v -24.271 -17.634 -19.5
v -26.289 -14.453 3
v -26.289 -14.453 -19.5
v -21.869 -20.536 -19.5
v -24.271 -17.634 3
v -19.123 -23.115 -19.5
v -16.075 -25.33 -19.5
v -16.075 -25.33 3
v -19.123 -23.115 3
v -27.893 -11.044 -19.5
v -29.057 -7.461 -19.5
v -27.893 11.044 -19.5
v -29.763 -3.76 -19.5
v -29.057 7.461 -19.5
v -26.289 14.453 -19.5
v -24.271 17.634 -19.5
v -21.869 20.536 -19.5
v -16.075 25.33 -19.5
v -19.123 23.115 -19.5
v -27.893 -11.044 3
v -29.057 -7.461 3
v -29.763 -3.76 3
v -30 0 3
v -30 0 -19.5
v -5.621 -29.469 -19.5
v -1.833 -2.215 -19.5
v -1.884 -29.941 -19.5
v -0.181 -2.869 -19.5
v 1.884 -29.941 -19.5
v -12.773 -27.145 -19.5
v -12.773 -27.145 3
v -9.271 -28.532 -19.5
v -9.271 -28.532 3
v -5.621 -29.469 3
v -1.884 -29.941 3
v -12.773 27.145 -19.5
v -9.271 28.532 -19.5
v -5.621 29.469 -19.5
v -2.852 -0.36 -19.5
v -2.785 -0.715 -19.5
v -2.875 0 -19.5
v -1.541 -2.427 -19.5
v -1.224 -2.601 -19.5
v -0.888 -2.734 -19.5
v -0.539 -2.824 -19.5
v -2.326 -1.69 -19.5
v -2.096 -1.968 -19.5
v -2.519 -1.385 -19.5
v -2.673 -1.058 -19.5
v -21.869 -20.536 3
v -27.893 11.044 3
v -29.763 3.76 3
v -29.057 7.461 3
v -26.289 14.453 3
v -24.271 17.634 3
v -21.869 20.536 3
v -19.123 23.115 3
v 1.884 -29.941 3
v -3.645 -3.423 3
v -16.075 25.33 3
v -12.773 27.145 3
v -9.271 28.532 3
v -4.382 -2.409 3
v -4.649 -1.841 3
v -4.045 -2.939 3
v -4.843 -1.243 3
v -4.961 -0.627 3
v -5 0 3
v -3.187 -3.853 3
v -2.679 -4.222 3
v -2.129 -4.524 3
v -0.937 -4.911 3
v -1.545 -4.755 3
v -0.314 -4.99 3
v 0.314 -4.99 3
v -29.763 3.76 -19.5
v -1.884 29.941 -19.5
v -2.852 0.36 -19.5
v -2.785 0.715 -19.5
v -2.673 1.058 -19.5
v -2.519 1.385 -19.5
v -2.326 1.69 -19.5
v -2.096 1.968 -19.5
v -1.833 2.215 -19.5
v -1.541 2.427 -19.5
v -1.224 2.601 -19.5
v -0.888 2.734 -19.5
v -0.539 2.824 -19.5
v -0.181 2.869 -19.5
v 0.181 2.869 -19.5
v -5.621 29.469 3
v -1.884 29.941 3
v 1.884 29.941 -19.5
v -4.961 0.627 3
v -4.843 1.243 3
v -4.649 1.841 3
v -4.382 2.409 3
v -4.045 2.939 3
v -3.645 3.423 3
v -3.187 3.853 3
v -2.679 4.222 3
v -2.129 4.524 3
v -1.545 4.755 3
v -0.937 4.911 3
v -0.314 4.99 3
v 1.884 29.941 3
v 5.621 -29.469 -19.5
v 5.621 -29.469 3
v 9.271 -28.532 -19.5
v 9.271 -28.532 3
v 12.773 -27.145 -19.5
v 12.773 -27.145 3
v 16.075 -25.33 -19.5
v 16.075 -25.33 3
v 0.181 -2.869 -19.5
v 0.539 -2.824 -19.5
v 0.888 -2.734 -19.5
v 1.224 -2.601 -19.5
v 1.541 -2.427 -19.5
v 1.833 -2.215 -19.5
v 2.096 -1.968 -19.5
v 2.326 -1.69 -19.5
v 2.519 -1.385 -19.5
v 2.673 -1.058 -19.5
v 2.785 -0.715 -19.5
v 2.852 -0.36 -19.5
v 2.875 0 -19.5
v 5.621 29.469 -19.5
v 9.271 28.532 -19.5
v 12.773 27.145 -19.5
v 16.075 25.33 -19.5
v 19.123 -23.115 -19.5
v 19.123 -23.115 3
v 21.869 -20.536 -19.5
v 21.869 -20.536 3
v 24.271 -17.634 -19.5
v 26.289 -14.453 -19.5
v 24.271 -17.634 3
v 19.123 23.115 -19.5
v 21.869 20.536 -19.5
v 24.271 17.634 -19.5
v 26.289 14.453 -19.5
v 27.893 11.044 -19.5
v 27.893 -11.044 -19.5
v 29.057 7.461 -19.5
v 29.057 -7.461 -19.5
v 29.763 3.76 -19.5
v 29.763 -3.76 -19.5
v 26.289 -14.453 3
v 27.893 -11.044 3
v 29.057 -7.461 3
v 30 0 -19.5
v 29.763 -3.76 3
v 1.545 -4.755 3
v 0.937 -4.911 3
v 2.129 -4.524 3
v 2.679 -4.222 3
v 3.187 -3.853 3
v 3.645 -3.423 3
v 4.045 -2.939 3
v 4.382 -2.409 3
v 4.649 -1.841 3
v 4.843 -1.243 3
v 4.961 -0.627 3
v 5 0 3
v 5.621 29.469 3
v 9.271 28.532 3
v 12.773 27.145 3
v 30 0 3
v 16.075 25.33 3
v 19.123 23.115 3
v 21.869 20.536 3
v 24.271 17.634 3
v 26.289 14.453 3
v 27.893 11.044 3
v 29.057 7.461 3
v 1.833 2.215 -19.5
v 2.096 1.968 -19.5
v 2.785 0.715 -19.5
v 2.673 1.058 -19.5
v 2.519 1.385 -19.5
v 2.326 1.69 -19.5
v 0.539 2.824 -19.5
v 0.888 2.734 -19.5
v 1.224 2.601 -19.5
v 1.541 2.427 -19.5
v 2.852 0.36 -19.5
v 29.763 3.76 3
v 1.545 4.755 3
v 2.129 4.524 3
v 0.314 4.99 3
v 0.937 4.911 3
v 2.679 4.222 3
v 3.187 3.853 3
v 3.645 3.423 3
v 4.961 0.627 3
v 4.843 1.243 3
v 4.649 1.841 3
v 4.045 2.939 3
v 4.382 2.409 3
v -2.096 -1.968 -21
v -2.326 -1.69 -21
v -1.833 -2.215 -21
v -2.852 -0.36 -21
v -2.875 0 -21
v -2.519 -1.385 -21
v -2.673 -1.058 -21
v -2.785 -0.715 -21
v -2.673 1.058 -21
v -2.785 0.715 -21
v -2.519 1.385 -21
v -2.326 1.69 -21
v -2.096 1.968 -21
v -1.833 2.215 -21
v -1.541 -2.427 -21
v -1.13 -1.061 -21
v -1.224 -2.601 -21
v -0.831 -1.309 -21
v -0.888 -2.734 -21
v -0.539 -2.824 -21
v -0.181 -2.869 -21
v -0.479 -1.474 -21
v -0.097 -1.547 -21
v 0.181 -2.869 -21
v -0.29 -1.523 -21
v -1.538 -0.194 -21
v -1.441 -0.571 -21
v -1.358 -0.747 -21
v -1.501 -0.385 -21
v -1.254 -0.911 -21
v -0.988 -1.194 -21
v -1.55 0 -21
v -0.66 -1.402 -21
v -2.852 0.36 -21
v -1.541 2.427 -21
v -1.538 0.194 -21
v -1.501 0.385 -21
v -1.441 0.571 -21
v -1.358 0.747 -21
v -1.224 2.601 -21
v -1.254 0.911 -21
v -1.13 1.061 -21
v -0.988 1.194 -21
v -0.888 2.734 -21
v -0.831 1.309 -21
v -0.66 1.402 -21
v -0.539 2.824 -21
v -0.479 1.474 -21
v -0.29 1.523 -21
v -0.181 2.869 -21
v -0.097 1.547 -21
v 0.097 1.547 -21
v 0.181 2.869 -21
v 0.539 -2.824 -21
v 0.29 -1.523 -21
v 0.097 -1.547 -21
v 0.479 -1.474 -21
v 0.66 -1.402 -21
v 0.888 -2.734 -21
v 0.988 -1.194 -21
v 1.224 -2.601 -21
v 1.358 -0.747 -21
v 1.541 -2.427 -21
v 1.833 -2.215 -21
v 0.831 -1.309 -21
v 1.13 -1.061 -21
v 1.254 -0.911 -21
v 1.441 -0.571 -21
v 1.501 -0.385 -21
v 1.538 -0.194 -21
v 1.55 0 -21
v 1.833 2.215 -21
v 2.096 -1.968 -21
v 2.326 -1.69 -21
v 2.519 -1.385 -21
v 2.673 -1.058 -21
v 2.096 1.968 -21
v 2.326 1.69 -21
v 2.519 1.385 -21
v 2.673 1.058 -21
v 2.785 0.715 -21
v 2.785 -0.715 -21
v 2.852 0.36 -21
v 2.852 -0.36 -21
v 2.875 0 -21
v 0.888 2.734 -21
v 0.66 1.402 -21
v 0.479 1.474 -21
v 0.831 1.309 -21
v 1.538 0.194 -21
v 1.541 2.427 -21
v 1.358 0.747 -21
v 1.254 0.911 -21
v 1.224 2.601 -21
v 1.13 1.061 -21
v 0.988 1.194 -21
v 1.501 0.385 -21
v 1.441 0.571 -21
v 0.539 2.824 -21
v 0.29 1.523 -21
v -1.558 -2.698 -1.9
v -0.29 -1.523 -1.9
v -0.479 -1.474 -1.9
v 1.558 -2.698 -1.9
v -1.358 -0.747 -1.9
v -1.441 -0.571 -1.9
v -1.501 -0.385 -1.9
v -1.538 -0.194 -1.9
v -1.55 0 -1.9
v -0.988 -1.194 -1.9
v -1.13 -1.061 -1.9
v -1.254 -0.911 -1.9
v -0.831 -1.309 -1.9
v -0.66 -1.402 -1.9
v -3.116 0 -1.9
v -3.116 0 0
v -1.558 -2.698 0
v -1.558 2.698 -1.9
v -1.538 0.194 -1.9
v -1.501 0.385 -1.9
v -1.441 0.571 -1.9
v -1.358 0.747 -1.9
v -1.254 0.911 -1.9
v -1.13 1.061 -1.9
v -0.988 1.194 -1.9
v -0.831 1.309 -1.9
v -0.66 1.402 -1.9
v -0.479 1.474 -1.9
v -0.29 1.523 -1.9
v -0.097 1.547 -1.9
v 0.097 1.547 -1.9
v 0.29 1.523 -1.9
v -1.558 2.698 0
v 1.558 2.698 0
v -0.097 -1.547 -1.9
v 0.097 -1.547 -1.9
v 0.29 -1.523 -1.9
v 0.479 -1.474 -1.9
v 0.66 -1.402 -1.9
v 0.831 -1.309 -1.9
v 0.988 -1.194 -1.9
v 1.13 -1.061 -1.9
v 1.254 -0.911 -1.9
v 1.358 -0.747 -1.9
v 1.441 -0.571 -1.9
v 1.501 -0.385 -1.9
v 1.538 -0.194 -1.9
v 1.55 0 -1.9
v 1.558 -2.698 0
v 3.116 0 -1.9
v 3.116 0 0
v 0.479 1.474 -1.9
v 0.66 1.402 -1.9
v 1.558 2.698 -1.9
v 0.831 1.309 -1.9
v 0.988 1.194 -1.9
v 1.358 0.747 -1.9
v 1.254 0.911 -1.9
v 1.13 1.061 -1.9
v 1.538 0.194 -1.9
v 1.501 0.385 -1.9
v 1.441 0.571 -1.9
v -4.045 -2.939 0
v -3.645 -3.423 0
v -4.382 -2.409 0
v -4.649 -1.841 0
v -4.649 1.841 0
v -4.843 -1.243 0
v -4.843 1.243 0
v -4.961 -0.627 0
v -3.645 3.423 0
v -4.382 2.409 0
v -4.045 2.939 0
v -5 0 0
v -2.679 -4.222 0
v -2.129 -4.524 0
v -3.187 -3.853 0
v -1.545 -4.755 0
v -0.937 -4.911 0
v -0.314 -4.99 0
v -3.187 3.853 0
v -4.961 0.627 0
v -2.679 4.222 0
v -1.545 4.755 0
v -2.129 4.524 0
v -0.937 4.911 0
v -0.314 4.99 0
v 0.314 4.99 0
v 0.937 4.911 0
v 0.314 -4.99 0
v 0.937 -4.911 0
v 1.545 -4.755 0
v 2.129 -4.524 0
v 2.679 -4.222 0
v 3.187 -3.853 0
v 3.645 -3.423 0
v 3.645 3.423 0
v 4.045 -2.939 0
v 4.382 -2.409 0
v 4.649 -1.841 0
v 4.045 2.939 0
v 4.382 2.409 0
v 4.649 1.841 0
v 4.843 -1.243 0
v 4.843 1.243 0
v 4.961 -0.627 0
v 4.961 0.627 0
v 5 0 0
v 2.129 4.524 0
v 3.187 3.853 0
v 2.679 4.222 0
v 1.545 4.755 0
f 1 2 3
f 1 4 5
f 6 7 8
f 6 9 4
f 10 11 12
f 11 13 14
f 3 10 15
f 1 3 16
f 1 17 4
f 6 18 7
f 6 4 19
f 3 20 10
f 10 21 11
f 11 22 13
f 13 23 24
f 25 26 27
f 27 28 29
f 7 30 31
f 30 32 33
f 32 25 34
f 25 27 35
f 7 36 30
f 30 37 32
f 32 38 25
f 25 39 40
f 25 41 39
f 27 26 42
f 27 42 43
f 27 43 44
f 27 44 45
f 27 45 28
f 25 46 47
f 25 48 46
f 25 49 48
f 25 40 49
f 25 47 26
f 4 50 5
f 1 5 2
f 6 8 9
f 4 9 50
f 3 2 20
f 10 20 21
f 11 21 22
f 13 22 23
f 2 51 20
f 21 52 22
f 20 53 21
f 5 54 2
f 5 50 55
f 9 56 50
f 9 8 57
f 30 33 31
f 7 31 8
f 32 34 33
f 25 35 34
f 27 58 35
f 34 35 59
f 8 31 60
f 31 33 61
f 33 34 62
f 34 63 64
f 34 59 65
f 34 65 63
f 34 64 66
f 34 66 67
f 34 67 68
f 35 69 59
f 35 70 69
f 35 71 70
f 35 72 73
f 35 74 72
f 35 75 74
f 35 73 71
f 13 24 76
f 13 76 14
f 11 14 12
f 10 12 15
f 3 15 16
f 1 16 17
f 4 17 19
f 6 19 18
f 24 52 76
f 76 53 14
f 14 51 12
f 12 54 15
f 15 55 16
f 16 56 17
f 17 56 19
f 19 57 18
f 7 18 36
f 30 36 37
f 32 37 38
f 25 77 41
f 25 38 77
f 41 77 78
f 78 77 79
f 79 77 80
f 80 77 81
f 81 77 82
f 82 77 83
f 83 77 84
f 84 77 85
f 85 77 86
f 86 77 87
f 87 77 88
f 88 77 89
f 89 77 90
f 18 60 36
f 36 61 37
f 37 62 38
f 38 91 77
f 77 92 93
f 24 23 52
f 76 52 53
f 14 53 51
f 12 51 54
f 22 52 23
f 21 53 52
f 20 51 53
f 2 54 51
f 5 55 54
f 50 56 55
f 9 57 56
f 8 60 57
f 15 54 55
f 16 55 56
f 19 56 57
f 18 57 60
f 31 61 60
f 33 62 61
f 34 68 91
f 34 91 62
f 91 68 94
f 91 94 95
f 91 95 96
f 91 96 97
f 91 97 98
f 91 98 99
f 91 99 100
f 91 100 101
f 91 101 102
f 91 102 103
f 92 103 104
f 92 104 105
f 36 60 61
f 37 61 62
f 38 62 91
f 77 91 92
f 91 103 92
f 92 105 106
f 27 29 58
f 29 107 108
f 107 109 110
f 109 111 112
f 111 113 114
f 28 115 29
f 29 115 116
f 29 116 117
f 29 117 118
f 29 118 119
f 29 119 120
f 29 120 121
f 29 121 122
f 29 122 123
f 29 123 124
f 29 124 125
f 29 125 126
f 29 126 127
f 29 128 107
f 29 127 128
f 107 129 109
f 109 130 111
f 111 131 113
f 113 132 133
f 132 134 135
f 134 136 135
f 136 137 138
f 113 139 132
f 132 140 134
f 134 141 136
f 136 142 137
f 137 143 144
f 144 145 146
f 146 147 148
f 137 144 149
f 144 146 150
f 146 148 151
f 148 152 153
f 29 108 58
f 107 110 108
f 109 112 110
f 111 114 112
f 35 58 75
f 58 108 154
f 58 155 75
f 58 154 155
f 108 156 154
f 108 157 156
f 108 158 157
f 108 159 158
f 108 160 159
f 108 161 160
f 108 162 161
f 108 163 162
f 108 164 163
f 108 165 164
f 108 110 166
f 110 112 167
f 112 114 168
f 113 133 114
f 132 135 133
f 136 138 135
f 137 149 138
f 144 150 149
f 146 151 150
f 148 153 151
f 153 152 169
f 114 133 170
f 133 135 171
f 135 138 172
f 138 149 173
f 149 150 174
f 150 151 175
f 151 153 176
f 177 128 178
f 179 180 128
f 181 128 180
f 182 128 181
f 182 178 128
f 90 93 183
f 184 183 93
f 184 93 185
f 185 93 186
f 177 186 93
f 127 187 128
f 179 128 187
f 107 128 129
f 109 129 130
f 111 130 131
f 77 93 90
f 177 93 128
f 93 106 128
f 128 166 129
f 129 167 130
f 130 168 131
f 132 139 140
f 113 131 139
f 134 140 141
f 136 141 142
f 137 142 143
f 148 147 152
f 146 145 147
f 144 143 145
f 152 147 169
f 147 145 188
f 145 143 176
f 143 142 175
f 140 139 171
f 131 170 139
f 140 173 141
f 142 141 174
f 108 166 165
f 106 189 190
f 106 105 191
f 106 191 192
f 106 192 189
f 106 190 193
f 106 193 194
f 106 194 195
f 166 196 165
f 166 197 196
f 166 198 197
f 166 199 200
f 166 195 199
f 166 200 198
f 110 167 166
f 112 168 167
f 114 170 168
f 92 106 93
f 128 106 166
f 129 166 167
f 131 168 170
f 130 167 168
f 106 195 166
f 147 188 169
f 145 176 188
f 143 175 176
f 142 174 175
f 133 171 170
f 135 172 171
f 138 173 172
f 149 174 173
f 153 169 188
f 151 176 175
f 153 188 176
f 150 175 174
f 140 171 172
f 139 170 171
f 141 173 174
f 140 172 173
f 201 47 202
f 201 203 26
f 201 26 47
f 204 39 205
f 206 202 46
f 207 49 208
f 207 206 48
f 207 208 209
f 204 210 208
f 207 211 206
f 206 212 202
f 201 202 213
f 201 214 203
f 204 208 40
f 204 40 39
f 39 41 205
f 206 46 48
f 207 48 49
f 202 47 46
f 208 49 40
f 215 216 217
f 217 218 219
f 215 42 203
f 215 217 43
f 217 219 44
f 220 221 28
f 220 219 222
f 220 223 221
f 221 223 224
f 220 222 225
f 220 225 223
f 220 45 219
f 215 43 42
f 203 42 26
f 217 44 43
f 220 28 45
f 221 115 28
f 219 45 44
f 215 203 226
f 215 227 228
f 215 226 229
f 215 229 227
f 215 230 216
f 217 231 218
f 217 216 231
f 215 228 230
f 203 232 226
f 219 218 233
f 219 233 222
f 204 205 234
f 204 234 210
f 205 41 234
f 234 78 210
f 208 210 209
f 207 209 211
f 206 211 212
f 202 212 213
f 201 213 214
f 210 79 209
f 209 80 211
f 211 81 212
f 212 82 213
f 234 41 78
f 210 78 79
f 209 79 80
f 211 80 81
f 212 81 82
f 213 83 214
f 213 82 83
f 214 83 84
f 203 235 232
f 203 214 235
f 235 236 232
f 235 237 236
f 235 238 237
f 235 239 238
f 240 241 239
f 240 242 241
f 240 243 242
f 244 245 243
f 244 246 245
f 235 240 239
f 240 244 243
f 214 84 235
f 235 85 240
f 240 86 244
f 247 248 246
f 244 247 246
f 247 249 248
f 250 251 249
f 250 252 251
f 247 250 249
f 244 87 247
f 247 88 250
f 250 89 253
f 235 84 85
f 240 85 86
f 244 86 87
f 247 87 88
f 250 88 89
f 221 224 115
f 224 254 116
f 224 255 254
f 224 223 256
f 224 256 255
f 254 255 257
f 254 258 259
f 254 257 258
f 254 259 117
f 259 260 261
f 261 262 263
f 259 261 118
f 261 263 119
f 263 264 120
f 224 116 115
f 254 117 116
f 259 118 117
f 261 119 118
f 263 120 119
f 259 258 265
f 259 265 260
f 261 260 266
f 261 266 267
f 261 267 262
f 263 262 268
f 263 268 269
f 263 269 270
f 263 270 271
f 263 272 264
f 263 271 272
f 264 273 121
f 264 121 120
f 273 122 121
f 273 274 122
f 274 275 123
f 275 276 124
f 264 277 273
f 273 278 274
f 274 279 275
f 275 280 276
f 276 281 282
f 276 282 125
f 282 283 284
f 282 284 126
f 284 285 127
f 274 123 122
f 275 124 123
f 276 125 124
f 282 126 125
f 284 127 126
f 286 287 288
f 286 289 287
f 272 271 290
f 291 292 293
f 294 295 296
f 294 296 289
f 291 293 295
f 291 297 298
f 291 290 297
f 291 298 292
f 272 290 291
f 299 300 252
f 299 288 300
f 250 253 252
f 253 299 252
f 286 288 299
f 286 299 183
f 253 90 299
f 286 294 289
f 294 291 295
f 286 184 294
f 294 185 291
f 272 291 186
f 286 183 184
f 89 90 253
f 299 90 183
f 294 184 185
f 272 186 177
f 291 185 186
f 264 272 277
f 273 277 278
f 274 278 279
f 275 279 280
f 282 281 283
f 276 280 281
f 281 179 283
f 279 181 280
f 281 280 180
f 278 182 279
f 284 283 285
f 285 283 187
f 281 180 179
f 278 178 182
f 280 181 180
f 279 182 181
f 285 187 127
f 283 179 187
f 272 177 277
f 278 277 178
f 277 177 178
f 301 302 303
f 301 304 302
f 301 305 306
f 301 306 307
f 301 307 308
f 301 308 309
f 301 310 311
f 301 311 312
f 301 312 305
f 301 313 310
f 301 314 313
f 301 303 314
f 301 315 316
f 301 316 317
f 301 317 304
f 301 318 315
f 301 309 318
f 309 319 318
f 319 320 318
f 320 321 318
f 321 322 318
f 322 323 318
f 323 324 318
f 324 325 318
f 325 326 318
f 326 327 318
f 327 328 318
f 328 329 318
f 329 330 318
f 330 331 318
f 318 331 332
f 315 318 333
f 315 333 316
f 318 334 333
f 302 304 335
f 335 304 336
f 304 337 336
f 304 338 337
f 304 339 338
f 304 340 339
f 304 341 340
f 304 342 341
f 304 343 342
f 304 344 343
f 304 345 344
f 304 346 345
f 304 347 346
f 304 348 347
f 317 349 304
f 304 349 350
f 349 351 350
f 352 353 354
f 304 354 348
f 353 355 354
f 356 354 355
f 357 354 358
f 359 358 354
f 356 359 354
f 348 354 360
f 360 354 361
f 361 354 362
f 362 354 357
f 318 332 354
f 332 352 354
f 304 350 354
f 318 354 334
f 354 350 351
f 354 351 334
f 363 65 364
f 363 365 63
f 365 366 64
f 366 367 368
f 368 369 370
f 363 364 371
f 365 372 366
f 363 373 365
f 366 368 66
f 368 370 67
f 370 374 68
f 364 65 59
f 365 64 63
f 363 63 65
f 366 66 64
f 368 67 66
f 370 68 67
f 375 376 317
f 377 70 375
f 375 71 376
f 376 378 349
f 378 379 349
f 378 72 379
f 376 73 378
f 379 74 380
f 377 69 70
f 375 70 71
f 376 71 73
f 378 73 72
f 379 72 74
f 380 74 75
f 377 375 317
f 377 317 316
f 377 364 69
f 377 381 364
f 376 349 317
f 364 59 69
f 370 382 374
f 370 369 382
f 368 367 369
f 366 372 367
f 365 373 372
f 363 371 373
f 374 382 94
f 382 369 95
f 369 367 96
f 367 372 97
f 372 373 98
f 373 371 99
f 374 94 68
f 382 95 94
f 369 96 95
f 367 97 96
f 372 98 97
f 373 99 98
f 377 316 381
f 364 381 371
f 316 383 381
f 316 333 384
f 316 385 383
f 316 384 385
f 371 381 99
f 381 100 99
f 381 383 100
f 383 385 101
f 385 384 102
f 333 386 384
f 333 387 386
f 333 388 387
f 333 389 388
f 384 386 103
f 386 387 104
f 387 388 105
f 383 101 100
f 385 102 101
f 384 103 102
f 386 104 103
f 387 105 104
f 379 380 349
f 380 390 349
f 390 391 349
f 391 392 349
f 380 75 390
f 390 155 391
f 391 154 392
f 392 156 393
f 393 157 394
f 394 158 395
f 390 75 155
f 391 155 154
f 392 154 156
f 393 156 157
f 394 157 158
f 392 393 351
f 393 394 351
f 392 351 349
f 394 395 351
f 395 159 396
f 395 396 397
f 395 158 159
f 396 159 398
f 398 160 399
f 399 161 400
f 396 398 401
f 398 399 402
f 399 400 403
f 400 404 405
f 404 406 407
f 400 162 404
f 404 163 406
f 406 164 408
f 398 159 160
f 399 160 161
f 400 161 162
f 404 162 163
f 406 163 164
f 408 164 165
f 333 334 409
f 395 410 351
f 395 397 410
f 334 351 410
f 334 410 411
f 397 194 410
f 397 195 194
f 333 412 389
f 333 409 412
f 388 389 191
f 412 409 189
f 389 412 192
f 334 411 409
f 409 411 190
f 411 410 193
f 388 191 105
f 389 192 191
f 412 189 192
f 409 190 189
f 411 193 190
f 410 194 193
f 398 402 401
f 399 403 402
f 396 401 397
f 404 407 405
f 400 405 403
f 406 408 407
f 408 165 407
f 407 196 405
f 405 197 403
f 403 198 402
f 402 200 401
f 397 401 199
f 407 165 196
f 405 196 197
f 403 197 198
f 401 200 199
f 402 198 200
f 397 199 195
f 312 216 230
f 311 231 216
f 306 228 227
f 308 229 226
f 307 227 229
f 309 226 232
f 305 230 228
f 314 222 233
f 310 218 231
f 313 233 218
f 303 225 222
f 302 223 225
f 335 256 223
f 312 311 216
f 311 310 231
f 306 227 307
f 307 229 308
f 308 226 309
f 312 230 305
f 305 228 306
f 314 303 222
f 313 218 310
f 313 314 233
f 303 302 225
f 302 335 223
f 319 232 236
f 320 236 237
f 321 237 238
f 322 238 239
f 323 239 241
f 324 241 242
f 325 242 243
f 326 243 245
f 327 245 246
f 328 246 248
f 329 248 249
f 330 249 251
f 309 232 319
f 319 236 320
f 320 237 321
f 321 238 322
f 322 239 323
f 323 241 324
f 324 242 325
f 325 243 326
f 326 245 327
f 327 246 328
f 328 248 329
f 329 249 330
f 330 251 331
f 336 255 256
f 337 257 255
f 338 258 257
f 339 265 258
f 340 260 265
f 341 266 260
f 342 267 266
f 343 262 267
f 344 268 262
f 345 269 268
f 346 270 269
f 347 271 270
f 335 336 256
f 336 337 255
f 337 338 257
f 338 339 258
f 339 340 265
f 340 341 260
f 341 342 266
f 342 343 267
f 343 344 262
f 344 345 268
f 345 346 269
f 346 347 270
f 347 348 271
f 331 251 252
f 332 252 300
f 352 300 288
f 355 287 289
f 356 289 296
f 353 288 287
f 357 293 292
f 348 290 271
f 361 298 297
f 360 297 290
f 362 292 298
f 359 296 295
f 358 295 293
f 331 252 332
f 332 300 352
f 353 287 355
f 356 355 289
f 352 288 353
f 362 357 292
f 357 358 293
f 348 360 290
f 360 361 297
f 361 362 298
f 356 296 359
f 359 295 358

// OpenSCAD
$fn = 50;

difference() {
	union() {
		translate(v = [0, 0, -19.5]) {
			cylinder(h = 22.5, r = 30.0);
		}
		#translate(v = [0, 0, -21.0]) {
			cylinder(h = 21, r = 2.875);
		}
	}
	union() {
		translate(v = [0, 0, 0]) {
			rotate(a = [0, 0, 0]) {
				difference() {
					union() {
						translate(v = [0, 0, -1.9]) {
							linear_extrude(height = 1.9) {
								polygon(points = [[3.1158, 0.0], [1.5579000000000005, 2.698361953111554], [-1.5578999999999994, 2.6983619531115544], [-3.1158, 3.815754496783323e-16], [-1.5579000000000014, -2.6983619531115535], [1.557899999999998, -2.6983619531115552]]);
							}
						}
					}
					union();
				}
			}
		}
		#cylinder(h = 3, r = 5.0);
		#translate(v = [0, 0, -100.0]) {
			cylinder(h = 200, r = 1.55);
		}
	}
}
